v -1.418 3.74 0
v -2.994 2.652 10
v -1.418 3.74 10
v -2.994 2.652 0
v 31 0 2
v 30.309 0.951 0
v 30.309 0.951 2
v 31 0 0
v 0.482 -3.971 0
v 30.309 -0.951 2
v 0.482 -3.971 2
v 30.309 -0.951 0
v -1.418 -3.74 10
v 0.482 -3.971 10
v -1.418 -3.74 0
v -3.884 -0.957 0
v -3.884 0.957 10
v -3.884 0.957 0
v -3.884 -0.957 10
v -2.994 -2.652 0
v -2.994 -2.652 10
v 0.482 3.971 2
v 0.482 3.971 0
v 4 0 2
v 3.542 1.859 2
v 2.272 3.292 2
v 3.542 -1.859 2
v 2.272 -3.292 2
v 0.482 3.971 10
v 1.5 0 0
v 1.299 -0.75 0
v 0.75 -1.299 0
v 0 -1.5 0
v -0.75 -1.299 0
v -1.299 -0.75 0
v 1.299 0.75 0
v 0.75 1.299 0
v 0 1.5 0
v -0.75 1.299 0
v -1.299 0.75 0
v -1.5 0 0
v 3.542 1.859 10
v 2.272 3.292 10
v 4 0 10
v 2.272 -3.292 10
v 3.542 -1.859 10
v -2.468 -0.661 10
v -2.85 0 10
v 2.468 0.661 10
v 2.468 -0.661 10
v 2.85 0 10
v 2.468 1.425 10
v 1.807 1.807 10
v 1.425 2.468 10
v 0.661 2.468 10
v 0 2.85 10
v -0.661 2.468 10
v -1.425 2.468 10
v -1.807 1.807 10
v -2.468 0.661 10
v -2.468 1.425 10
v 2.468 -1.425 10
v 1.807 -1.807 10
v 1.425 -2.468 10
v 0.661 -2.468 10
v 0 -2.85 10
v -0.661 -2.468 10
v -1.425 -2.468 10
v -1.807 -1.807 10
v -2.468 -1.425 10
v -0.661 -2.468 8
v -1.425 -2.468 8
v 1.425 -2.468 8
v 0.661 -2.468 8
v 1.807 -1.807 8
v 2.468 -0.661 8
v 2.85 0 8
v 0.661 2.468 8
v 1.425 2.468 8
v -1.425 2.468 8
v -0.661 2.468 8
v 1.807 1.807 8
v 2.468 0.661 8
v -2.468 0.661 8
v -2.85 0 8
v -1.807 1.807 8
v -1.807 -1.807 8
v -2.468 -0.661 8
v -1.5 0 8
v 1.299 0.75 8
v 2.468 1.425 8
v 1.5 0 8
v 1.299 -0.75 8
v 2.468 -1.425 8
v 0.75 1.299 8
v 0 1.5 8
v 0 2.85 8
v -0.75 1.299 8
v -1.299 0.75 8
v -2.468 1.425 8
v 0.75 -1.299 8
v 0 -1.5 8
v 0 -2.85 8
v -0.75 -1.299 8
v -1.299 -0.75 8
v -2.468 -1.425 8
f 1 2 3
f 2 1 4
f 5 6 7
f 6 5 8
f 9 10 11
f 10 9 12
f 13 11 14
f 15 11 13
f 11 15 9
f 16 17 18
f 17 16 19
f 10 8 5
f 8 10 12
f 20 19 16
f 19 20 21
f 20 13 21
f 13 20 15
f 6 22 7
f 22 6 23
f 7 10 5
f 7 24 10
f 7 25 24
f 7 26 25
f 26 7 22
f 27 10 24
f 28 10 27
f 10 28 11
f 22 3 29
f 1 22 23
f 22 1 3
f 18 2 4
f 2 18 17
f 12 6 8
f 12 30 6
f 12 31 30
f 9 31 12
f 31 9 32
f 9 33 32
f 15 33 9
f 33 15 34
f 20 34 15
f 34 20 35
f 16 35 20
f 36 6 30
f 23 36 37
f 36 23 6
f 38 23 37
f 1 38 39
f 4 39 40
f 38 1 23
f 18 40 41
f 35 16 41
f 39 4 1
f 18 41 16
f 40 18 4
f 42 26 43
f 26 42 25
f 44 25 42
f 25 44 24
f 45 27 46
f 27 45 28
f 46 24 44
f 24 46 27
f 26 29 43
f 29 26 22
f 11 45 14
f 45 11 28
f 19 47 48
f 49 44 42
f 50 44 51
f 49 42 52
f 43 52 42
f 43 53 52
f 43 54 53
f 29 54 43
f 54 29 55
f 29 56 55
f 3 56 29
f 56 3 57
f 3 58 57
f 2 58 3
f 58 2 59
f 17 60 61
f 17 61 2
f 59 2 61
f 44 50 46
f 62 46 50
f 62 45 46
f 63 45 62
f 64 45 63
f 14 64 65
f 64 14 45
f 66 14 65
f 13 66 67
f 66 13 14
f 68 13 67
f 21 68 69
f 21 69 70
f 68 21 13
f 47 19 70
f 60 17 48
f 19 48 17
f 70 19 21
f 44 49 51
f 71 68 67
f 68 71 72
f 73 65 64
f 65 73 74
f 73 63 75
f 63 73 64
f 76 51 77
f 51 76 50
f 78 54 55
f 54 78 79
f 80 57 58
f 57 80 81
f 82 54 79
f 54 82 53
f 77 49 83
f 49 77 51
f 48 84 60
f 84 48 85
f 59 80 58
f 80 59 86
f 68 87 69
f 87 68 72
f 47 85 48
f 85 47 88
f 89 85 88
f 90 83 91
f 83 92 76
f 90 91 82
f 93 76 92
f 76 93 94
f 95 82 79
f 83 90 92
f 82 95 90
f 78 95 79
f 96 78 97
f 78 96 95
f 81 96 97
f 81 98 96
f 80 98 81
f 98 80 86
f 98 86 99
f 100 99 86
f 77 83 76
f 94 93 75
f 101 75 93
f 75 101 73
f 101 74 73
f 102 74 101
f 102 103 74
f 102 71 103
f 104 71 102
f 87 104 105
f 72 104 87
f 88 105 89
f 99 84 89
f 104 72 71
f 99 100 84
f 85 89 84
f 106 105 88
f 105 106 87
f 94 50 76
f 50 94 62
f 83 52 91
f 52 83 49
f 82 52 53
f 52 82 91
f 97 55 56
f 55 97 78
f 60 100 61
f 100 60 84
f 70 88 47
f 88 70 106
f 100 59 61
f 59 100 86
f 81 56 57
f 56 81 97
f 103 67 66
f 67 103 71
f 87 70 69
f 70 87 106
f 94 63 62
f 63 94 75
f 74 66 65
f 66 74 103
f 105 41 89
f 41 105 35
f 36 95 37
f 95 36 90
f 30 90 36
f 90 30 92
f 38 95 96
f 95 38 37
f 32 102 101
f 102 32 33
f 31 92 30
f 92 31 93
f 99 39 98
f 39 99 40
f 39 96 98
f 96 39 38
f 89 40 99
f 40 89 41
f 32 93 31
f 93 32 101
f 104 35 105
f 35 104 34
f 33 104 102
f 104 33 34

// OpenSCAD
difference(){
    union(){
        hull(){
            cylinder(2,d=8);
            translate([30,0,0]){
                cylinder(2,d=2);
            }
        }
        cylinder(10,d=8);
    }
    cylinder(10,d=3,$fn=12);
    translate([0,0,8]){
        cylinder(3,d=5.7,$fn=6);
        rotate([0,0,90]){
            cylinder(3,d=5.7,$fn=6);
        }
    }
}
